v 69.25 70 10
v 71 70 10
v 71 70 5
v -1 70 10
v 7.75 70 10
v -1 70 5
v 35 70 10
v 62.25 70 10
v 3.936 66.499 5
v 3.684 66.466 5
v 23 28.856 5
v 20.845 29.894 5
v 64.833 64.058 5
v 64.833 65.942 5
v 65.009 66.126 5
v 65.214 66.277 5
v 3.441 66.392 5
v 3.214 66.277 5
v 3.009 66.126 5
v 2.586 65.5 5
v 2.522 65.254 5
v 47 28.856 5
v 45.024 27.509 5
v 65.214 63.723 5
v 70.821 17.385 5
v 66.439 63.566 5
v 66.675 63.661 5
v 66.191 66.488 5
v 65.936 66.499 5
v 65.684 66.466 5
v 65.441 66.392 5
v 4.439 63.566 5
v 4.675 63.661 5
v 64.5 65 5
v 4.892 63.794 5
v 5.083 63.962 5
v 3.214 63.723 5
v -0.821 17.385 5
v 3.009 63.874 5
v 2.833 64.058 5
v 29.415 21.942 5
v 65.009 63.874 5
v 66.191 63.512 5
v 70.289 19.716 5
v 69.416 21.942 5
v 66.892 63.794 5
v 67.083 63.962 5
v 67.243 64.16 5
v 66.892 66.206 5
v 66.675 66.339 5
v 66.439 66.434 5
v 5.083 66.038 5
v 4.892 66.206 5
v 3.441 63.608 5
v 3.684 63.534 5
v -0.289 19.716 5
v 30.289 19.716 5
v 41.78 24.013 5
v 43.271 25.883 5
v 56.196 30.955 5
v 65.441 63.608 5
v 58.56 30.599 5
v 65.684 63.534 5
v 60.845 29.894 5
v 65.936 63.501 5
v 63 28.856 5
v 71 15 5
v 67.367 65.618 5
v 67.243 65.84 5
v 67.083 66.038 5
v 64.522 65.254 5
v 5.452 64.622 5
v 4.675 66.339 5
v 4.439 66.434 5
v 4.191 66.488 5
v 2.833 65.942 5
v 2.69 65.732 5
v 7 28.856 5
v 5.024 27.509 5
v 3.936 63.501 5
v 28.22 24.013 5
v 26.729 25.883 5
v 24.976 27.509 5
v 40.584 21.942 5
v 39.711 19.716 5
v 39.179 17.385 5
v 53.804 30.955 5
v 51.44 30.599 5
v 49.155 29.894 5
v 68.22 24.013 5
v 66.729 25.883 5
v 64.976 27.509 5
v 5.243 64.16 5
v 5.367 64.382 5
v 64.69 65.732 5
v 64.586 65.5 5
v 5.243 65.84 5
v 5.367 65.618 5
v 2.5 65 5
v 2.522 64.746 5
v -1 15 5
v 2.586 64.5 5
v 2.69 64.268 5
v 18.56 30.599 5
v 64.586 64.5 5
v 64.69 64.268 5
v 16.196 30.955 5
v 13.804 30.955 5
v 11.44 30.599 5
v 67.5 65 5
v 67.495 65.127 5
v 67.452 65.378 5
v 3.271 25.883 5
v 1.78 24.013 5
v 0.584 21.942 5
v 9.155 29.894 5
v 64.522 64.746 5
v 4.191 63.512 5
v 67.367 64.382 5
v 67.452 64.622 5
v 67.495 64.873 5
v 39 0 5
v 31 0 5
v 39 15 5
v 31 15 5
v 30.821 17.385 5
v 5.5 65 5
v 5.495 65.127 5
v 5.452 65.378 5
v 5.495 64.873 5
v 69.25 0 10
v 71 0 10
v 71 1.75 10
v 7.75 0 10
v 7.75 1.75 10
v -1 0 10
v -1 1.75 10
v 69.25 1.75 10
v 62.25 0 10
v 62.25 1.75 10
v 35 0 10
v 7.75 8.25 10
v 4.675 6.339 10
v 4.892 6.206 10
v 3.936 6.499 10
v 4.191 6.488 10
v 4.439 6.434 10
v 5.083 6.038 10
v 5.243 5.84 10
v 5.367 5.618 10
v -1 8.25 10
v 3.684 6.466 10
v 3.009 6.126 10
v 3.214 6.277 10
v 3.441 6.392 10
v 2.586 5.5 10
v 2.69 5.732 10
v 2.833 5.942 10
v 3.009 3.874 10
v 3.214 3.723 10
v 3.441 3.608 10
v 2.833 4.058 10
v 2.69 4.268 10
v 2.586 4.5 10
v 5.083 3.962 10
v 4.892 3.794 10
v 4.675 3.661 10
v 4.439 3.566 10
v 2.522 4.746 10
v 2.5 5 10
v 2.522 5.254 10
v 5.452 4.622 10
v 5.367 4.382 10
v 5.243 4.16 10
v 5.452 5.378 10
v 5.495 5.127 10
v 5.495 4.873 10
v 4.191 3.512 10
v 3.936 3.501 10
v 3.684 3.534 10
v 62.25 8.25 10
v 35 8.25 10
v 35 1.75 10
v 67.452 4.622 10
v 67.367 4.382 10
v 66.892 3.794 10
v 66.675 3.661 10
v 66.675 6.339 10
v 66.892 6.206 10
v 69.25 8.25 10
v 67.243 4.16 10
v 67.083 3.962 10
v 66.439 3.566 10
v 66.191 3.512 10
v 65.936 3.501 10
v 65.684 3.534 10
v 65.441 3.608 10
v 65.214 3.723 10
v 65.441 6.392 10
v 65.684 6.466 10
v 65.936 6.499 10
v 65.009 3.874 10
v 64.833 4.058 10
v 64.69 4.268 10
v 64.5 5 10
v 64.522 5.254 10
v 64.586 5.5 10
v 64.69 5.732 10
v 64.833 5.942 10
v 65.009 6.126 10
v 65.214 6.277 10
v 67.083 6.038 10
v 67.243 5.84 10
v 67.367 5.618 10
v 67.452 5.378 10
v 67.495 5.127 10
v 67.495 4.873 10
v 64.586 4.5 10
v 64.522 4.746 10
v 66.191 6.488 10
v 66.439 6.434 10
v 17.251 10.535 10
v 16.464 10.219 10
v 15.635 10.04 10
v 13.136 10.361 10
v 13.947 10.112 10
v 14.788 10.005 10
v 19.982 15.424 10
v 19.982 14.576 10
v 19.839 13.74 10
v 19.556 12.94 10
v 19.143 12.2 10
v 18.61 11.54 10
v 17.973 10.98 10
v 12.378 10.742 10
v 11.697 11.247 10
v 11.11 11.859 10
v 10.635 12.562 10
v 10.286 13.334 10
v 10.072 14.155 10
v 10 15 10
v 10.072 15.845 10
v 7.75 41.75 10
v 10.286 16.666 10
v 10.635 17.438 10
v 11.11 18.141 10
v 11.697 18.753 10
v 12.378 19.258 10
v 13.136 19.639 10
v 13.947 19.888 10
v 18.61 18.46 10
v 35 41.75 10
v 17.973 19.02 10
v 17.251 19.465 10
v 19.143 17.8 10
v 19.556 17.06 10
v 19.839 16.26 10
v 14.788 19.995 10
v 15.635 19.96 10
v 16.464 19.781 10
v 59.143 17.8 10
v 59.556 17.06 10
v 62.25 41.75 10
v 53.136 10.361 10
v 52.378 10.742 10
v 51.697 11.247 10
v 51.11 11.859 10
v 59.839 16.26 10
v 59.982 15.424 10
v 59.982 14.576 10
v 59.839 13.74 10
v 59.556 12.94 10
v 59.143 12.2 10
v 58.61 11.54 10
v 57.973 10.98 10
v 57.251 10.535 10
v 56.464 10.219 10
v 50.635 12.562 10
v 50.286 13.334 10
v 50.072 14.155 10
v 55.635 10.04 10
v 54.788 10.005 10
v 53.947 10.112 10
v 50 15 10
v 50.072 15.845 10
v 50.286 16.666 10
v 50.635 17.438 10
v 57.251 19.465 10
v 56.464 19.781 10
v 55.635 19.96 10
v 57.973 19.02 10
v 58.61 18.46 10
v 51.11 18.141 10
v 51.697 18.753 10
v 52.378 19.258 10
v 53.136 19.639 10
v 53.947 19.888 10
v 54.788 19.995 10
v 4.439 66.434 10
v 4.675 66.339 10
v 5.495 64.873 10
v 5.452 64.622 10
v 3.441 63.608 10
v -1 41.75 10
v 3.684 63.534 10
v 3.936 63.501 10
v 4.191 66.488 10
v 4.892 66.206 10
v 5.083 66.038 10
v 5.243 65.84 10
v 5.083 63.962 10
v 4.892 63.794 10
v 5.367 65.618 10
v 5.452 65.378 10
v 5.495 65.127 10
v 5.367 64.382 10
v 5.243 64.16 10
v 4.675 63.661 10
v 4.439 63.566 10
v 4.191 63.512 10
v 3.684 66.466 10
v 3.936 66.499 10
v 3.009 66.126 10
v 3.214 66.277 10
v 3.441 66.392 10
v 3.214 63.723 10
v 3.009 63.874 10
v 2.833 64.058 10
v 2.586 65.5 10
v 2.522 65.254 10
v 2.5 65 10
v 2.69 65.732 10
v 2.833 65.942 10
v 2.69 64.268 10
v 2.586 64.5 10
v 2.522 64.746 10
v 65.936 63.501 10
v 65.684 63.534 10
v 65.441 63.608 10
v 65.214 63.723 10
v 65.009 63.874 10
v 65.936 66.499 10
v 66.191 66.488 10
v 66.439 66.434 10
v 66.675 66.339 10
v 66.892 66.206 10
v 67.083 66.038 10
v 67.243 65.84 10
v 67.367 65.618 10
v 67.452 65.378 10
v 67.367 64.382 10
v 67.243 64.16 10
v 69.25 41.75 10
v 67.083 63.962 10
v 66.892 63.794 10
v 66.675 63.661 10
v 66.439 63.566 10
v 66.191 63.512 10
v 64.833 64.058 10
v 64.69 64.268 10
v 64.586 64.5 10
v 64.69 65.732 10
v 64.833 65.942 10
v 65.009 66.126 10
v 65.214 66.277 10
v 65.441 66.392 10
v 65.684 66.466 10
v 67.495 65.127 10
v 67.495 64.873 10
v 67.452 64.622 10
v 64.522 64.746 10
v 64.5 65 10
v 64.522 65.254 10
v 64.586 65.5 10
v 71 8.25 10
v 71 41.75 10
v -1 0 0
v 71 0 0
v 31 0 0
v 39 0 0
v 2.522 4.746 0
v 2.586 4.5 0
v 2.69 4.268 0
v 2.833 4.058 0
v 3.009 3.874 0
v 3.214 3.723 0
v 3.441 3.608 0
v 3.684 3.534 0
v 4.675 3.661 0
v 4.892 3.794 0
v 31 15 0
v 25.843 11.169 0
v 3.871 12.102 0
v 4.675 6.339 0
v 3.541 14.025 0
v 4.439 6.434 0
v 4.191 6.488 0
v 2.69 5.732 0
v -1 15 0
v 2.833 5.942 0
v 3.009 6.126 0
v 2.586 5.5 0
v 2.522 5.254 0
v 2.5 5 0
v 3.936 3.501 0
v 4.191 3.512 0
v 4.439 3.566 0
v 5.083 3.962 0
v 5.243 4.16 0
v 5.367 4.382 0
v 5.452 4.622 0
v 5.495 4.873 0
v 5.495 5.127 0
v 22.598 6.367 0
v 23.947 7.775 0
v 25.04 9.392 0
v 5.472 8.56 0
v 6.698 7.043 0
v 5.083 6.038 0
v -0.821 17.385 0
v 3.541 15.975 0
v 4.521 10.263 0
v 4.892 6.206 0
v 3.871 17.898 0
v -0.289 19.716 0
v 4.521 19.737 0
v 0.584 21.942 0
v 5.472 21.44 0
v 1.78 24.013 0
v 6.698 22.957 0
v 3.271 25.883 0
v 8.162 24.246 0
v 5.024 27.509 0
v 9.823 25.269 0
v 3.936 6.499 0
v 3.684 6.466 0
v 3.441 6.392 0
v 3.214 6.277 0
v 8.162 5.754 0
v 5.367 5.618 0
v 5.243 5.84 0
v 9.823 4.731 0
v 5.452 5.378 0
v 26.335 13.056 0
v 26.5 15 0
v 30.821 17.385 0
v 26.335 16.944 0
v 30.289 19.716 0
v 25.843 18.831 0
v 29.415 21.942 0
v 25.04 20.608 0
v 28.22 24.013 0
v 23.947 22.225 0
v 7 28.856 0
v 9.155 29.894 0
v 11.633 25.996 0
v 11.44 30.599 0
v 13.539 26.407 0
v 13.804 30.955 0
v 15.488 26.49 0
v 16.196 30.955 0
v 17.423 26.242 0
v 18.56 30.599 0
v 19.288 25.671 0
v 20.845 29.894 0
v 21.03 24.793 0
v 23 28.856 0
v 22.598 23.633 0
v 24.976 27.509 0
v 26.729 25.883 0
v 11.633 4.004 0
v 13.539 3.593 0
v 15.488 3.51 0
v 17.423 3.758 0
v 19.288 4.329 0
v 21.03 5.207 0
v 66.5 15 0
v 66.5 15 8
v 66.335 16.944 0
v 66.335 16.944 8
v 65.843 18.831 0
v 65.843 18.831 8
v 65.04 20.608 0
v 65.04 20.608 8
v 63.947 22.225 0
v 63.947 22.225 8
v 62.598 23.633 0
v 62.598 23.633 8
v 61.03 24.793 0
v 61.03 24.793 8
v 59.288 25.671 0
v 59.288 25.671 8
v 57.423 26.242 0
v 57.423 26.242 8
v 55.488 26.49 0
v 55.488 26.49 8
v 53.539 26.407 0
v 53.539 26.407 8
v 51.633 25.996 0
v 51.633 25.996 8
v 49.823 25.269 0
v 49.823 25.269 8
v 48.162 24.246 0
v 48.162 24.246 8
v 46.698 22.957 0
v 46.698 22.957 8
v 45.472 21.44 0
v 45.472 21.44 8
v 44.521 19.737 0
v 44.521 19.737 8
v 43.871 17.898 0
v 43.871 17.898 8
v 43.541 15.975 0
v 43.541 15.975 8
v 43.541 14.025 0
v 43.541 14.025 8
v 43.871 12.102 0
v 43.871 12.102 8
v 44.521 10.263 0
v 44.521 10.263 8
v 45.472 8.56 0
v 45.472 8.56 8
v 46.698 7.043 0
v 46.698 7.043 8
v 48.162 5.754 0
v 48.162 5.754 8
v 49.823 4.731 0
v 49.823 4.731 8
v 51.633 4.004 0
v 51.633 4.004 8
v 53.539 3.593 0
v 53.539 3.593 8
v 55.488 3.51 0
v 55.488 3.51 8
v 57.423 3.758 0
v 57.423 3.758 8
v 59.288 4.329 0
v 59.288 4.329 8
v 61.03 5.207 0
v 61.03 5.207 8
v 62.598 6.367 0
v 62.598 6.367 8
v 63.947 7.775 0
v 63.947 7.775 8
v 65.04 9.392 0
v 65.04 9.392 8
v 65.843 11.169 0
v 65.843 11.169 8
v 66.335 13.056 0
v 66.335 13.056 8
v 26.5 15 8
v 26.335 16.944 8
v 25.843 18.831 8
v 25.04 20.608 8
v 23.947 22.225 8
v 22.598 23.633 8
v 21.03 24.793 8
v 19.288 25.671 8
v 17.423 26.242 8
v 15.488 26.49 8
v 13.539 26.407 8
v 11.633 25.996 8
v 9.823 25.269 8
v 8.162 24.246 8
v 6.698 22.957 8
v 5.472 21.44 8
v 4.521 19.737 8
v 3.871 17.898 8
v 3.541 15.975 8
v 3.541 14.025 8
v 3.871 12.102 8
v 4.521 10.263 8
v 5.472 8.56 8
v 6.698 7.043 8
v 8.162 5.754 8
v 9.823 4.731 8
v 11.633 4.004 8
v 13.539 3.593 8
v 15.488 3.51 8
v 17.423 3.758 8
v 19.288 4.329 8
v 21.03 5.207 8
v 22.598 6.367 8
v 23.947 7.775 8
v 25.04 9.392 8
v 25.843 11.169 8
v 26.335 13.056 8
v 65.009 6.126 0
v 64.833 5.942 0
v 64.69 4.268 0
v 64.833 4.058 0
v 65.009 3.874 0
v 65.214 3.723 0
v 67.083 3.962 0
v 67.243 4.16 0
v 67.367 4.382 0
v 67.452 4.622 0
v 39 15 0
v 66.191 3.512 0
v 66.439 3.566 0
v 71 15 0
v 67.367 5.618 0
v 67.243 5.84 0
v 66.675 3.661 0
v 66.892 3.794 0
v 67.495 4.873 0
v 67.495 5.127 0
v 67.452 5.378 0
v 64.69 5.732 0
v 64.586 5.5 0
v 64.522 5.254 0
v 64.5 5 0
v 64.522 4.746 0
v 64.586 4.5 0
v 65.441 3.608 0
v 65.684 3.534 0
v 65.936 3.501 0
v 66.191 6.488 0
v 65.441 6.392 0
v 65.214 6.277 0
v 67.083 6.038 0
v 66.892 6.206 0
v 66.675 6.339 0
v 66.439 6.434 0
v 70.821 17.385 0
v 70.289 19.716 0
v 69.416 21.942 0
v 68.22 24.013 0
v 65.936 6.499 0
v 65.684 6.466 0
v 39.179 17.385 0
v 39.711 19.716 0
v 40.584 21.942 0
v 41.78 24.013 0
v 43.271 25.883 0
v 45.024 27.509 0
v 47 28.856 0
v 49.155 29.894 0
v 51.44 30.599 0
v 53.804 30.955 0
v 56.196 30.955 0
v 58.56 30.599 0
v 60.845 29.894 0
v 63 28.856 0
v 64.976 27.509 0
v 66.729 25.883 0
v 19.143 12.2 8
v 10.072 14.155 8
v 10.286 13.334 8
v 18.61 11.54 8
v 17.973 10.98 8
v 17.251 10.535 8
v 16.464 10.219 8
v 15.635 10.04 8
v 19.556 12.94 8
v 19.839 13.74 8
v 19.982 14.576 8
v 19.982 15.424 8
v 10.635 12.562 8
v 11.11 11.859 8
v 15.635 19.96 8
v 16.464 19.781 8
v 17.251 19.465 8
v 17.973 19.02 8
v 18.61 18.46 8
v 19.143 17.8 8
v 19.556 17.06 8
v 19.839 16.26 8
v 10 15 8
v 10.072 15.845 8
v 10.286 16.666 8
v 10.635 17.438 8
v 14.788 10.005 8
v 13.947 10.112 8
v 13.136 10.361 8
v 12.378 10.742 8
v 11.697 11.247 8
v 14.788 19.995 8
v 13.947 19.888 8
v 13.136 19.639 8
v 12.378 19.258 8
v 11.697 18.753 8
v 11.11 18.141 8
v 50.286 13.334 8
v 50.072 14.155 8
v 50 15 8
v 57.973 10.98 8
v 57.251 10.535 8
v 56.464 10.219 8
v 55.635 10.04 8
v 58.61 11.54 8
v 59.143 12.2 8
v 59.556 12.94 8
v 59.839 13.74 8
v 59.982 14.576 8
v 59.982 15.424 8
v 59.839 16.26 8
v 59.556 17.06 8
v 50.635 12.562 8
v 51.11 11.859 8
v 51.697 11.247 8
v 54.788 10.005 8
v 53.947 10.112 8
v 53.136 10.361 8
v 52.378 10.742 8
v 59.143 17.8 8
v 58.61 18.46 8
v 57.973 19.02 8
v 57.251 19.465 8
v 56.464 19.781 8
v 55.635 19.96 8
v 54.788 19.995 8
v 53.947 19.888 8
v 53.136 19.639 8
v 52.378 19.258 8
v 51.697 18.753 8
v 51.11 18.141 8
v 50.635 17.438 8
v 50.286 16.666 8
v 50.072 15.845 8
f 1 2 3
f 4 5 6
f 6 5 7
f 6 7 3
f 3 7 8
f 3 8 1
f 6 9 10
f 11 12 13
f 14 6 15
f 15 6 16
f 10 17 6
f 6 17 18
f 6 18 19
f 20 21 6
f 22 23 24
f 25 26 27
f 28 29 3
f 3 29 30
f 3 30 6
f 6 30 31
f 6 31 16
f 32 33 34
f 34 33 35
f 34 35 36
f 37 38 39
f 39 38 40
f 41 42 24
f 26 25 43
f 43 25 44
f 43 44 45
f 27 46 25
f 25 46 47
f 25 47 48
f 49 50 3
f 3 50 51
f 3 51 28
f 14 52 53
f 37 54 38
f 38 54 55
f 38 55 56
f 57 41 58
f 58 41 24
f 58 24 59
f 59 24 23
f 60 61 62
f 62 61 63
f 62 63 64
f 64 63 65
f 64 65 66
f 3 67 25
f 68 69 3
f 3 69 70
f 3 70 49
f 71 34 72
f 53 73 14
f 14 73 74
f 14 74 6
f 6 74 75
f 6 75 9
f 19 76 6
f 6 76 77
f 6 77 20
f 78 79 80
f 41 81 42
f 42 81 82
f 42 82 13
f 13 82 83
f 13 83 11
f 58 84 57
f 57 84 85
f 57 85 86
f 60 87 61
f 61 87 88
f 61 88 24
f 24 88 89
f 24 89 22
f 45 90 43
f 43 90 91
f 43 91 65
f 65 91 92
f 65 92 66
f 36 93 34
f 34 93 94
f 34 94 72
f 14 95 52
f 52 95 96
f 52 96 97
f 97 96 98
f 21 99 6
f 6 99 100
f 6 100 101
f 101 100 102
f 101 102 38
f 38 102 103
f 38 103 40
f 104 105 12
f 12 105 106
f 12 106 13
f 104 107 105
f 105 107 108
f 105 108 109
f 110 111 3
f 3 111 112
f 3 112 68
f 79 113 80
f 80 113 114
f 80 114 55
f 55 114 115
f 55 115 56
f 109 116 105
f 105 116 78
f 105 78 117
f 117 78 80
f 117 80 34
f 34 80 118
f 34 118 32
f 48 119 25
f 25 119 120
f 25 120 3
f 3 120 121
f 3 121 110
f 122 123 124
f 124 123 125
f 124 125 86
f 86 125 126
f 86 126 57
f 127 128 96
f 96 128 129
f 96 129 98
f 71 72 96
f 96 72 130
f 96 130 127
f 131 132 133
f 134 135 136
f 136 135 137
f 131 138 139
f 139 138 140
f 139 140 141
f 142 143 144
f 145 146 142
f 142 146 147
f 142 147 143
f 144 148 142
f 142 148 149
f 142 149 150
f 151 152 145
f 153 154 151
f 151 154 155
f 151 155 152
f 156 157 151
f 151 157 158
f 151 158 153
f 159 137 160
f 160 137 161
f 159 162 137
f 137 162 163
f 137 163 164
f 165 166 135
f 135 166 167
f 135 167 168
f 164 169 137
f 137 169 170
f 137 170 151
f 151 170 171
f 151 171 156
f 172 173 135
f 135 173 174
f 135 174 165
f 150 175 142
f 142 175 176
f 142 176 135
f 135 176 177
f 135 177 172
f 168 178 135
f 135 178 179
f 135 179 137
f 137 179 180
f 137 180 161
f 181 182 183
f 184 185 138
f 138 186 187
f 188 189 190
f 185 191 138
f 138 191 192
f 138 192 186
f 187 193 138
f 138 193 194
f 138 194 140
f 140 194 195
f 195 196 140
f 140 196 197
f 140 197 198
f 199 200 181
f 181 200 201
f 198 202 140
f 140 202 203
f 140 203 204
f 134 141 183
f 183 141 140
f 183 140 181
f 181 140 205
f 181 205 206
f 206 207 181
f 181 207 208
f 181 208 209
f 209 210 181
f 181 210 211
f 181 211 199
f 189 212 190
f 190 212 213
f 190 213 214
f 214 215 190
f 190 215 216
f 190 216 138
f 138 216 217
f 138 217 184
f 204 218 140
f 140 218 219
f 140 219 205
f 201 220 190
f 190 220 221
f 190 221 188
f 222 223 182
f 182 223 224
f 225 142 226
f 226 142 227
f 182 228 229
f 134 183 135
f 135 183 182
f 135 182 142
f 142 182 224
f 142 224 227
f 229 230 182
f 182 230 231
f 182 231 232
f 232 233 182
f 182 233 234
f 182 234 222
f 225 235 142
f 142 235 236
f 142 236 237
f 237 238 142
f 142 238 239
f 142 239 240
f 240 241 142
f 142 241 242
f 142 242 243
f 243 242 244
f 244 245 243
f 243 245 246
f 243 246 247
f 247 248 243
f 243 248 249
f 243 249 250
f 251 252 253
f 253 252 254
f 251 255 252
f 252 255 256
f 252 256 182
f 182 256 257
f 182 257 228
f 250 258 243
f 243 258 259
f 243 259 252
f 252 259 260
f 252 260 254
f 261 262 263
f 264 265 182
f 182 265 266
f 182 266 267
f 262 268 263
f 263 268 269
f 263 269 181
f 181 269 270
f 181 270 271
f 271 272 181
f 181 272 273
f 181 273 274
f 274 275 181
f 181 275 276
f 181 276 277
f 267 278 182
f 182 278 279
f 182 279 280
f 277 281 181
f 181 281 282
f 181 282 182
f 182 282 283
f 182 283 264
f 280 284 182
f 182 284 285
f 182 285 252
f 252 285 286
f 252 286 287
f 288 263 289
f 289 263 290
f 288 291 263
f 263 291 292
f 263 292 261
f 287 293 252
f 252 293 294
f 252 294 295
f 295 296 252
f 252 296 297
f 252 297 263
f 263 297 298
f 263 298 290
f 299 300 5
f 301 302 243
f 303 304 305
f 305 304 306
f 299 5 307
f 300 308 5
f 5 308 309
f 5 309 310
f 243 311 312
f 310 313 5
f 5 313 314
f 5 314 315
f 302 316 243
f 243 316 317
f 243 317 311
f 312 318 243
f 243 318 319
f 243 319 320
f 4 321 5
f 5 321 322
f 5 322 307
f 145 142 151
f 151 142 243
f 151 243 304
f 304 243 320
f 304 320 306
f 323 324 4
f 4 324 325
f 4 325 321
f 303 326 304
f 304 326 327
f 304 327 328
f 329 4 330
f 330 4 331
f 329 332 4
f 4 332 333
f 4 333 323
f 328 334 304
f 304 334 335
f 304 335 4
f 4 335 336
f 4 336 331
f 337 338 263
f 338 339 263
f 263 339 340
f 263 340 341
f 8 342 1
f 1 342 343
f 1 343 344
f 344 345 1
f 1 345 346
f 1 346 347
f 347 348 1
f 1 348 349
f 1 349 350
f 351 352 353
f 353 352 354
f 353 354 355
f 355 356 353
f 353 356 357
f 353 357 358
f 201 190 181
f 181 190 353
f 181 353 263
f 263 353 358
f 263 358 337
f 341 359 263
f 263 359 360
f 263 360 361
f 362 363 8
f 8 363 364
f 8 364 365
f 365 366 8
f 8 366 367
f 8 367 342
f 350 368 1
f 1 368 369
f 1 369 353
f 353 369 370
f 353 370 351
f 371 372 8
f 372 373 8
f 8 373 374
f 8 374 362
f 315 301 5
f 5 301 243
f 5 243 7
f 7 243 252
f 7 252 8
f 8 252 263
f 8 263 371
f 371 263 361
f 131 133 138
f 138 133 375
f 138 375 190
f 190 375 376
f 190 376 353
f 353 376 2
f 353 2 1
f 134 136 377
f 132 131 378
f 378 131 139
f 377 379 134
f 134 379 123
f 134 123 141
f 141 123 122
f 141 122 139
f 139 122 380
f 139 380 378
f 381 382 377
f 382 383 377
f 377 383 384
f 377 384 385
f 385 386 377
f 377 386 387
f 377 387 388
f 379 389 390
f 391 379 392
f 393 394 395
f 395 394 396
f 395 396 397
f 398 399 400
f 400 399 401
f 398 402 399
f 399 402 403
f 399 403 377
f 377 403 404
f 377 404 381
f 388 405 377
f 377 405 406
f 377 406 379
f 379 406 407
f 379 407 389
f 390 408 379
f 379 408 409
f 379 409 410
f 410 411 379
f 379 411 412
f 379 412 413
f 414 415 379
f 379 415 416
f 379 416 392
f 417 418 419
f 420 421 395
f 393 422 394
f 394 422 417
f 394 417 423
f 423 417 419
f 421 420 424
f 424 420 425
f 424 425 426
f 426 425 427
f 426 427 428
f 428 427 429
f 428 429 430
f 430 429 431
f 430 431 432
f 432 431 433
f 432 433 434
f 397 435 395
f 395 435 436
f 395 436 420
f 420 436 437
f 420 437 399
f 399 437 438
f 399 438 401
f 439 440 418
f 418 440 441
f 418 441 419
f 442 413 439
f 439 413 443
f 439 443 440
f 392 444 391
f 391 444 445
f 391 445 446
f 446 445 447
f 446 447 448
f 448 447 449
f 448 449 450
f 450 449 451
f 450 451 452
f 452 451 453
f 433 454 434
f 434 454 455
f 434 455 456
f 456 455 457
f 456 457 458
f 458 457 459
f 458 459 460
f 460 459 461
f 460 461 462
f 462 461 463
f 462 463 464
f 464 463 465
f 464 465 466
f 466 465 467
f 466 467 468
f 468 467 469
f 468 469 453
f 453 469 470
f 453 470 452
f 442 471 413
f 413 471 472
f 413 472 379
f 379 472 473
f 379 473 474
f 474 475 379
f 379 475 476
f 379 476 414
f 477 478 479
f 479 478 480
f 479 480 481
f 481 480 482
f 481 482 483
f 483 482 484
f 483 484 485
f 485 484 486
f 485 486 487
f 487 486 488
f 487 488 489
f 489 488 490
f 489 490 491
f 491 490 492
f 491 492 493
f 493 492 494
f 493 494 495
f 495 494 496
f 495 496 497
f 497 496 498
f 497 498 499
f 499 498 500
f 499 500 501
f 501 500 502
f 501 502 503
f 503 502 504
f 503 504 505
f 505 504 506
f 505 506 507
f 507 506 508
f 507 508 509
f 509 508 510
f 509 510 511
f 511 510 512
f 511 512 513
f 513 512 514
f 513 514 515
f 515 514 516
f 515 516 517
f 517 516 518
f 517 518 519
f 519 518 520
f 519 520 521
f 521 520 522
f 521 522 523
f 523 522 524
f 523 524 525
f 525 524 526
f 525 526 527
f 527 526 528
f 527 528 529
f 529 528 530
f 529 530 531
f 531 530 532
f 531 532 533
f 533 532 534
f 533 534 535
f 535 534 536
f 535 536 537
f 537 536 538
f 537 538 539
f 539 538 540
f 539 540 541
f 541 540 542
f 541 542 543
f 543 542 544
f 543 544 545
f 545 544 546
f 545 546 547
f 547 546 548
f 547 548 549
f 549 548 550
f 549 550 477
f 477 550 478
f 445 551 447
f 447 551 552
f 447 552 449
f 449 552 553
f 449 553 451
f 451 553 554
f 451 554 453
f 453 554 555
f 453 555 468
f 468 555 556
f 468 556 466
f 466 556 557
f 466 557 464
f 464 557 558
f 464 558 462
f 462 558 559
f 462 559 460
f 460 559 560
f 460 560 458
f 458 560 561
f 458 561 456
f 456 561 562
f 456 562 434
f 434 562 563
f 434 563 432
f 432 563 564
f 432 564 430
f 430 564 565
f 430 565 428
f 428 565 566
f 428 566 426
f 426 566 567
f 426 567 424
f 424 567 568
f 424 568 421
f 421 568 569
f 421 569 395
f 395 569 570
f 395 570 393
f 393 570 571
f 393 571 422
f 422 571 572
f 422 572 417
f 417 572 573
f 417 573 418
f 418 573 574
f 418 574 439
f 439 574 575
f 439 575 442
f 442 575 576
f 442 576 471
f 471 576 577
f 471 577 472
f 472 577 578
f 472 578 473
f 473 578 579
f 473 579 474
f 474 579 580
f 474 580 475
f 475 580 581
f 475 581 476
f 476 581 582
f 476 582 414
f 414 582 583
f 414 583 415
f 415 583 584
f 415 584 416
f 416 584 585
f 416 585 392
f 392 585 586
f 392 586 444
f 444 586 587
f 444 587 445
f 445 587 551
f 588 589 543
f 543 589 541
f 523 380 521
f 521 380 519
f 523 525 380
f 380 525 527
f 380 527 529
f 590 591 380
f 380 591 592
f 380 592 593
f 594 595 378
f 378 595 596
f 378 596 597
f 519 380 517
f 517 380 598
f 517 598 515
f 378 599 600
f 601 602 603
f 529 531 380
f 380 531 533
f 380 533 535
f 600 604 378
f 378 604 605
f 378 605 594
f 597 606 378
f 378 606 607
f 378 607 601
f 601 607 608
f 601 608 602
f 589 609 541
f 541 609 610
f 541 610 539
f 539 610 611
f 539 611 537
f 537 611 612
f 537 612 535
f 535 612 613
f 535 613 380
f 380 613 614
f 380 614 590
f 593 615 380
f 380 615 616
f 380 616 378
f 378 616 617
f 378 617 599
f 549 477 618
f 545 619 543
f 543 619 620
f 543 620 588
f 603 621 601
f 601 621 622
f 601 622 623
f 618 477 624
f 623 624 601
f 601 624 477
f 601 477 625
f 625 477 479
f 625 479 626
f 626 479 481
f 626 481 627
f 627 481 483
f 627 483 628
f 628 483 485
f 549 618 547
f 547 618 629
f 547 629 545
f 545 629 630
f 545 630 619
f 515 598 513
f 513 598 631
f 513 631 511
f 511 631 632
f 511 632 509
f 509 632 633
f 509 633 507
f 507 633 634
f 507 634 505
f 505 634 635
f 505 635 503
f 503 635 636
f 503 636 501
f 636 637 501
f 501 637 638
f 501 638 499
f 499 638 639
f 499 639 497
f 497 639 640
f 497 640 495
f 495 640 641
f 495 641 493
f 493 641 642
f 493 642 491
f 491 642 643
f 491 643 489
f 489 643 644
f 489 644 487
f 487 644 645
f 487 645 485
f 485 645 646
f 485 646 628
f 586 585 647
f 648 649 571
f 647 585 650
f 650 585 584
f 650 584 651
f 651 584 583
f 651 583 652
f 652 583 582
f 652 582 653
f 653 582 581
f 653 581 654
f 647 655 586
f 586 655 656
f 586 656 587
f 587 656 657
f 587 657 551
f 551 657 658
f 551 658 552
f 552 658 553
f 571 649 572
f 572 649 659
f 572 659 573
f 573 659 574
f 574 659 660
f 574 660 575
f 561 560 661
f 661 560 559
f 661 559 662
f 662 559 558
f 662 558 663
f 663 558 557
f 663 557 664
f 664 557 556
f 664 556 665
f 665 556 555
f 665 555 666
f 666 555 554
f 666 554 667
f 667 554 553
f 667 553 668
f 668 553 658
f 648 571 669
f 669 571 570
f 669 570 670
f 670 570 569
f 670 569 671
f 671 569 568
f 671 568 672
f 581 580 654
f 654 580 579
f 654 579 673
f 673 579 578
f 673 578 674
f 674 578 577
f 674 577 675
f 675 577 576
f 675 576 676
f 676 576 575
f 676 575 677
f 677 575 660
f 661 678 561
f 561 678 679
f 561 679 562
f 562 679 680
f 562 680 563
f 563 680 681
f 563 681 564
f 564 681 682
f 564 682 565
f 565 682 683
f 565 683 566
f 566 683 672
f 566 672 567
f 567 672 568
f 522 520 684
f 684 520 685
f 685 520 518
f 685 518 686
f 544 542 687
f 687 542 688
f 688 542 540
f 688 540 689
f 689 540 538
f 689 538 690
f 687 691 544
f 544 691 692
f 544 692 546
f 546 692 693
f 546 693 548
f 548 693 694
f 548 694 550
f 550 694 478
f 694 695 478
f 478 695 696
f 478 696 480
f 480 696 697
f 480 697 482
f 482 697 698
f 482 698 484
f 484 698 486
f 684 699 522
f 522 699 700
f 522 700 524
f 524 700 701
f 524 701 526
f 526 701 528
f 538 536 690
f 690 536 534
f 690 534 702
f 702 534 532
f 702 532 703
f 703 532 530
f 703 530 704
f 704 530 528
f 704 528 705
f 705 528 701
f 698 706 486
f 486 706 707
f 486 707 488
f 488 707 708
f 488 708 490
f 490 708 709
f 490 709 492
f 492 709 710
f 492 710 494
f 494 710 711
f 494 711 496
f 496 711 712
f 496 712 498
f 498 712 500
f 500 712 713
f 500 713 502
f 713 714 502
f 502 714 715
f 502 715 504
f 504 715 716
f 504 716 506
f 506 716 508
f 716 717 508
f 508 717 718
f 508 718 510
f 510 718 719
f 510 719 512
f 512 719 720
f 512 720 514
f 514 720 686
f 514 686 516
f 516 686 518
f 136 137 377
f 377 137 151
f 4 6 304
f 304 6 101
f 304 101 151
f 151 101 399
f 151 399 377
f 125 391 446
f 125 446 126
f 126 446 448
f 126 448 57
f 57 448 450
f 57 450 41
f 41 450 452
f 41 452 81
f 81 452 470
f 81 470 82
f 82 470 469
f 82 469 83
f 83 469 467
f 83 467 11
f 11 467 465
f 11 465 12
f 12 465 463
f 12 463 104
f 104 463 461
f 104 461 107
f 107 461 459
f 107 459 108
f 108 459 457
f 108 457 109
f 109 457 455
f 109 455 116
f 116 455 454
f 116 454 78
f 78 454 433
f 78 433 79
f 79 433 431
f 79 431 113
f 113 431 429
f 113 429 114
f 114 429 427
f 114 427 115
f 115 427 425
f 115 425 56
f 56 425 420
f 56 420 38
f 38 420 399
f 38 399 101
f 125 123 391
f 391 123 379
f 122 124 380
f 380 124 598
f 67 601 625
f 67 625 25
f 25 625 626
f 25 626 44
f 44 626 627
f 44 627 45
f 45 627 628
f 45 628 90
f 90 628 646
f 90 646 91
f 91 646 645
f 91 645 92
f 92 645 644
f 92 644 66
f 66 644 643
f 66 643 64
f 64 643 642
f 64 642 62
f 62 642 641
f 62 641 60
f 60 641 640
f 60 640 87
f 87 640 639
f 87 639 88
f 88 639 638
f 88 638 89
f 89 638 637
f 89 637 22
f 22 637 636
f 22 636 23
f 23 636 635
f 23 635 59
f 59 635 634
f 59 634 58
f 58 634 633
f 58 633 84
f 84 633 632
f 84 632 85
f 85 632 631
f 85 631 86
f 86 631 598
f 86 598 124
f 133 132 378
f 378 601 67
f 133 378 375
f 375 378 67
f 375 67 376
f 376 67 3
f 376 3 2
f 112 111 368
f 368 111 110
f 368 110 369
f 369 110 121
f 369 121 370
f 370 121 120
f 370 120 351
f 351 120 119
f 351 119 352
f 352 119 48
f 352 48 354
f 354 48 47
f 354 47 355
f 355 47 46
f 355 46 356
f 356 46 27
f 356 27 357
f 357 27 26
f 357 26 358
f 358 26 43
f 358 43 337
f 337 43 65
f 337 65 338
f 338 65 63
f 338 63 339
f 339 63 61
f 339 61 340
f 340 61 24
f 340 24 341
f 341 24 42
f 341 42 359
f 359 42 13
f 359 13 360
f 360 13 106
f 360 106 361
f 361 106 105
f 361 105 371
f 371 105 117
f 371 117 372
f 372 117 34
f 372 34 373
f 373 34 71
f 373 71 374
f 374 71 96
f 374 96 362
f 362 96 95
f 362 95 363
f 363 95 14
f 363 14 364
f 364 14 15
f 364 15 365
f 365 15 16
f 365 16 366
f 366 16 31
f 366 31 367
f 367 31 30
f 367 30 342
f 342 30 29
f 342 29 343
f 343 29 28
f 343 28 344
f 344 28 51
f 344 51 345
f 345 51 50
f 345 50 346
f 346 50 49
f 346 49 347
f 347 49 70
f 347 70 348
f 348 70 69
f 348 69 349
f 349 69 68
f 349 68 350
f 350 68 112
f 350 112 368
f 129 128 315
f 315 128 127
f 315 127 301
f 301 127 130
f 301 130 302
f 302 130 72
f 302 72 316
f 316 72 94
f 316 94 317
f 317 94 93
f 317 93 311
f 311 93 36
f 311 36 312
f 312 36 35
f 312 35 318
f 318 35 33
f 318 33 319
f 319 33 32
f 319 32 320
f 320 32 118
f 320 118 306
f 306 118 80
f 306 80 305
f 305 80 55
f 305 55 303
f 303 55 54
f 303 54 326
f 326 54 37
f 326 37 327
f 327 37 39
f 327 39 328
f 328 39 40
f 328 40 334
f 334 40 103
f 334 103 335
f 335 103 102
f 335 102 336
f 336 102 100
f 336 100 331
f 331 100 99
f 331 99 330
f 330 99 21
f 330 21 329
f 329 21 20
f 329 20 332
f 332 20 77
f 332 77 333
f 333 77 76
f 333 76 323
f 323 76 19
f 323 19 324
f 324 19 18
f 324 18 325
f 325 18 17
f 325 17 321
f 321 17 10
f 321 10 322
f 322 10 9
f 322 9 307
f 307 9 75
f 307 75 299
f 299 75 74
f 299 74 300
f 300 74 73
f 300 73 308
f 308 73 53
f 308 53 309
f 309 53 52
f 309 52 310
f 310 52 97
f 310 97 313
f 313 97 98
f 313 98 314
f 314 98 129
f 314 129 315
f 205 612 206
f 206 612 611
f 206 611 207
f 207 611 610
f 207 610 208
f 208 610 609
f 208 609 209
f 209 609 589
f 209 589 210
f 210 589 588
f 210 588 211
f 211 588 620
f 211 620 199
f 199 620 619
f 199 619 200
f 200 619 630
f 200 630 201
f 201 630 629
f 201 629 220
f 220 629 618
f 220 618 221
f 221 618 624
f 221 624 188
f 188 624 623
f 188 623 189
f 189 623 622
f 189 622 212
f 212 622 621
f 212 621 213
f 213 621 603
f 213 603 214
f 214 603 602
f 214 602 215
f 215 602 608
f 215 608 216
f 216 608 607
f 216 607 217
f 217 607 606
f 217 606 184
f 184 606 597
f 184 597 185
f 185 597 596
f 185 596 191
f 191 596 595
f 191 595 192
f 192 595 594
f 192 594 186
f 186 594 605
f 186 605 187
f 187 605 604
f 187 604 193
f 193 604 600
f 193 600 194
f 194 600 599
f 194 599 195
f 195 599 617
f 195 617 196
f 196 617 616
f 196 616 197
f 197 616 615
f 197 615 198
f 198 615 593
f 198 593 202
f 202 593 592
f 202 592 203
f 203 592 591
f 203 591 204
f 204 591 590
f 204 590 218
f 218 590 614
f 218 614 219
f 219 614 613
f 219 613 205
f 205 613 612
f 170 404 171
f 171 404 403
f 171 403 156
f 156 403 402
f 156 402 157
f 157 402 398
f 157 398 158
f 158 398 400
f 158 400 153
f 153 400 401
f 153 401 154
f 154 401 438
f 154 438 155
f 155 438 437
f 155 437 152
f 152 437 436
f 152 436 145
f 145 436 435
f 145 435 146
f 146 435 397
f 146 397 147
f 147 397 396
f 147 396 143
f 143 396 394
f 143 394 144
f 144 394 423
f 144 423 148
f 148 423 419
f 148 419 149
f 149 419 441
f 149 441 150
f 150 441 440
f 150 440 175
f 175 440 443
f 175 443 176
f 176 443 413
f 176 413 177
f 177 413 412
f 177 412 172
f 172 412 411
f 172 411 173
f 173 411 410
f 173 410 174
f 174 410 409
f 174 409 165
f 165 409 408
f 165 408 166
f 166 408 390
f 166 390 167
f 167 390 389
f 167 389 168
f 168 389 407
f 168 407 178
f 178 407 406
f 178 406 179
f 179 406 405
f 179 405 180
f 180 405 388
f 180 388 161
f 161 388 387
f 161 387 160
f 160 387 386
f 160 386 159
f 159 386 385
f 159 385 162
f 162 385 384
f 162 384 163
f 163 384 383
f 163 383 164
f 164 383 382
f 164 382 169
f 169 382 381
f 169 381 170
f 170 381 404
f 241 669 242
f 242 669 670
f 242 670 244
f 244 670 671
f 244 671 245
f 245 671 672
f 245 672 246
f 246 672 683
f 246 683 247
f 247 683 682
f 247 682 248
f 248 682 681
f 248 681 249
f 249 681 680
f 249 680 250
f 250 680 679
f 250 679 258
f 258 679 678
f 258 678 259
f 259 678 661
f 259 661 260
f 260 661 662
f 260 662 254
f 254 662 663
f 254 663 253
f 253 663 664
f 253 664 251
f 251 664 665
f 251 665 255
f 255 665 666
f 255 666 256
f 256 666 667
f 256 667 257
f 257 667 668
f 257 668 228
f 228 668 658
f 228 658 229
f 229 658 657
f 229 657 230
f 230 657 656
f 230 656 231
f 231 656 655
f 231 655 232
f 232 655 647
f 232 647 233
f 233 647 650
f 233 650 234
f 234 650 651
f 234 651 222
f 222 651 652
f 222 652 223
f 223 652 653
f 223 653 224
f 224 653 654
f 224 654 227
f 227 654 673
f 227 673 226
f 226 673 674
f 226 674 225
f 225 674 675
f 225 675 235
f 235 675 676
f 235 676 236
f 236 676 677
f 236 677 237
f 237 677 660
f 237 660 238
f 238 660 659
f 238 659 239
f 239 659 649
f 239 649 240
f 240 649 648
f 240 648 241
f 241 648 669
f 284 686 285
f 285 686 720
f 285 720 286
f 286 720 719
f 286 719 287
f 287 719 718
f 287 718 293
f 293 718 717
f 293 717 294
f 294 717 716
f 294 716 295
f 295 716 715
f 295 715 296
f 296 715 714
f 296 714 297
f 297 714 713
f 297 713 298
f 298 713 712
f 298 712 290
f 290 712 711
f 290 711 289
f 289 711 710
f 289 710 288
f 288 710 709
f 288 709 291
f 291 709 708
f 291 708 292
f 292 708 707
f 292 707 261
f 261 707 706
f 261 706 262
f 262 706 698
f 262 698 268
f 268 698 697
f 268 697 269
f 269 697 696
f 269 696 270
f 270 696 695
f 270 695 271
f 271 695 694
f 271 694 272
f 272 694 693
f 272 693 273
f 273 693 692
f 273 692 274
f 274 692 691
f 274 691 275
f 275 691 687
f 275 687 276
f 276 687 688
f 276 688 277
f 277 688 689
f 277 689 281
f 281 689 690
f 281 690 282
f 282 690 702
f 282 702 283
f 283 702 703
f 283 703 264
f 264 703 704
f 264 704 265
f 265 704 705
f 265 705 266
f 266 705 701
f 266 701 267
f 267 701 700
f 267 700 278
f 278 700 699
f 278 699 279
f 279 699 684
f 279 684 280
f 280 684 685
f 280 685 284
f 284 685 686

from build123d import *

# Parameters (mm, degrees)
SKETCH1_W               = 70
SKETCH1_H               = 70
BOSS_EXTRUDE1_DEPTH     = 10
SKETCH2_R               = 12
SKETCH2_R_2             = 2
SKETCH2_R_3             = 11.5
CUT_EXTRUDE1_DEPTH      = 10
SKETCH3_W               = 10
SKETCH3_H               = 70
BOSS_EXTRUDE2_DEPTH     = 15
SKETCH4_W               = 10
SKETCH4_H               = 70
BOSS_EXTRUDE3_DEPTH     = 15
SKETCH5_R               = 11.5
SKETCH5_R_2             = 4
BOSS_EXTRUDE4_DEPTH     = 2
SKETCH6_R               = 1.5
SKETCH6_R_2             = 1.648708122
CUT_EXTRUDE3_DEPTH      = 10
BOSS_EXTRUDE5_START     = -10
SKETCH7_R               = 11.986708095
SKETCH7_R_2             = 2
BOSS_EXTRUDE5_DEPTH     = 10
SKETCH8_R               = 12
CUT_EXTRUDE4_DEPTH      = 10
SKETCH9_R               = 2
CUT_EXTRUDE5_DEPTH      = 10
CUT_EXTRUDE7_DEPTH      = 5
SKETCH15_W              = 14
SKETCH15_H              = 70
CUT_EXTRUDE8_DEPTH      = 5
CUT_EXTRUDE9_DEPTH      = 19
CUT_EXTRUDE9_DEPTH_BACK = 48
SKETCH16_R              = 1.5
SKETCH17_R              = 5
CUT_EXTRUDE10_DEPTH     = 19
SKETCH18_W              = 44.558304453
SKETCH18_H              = 39
BOSS_EXTRUDE6_DEPTH     = 5


with BuildPart() as part:
    # Sketch1 → Boss-Extrude1 (new body)
    with BuildSketch(Plane.XY):
        with Locations((35, 35)):
            Rectangle(SKETCH1_W, SKETCH1_H)
    extrude(amount=BOSS_EXTRUDE1_DEPTH)

    # Sketch2 → Cut-Extrude1 (cut)
    with BuildSketch(Plane.XY.offset(10)):
        with Locations((35, 49)):
            Circle(SKETCH2_R)
        with Locations((19.5, 65)):
            Circle(SKETCH2_R_2)
        with Locations((50.5, 65)):
            Circle(SKETCH2_R_2)
        with Locations((19.5, 34)):
            Circle(SKETCH2_R_2)
        with Locations((50.5, 34)):
            Circle(SKETCH2_R_2)
        with Locations((15, 15)):
            Circle(SKETCH2_R_3)
        with Locations((55, 15)):
            Circle(SKETCH2_R_3)
    extrude(amount=-CUT_EXTRUDE1_DEPTH, mode=Mode.SUBTRACT)

    # Sketch3 → Boss-Extrude2 (add)
    with BuildSketch(Plane.ZY):
        with Locations((5, 35)):
            Rectangle(SKETCH3_W, SKETCH3_H)
    extrude(amount=BOSS_EXTRUDE2_DEPTH)

    # Sketch4 → Boss-Extrude3 (add)
    with BuildSketch(Plane(origin=(70, 0, 0), x_dir=(0, 0, -1), z_dir=(1, 0, 0))):
        with Locations((-5, 35)):
            Rectangle(SKETCH4_W, SKETCH4_H)
    extrude(amount=BOSS_EXTRUDE3_DEPTH)

    # Sketch5 → Boss-Extrude4 (add)
    # profile 1 of 2: a face of its own
    with BuildSketch(Plane.XY.offset(10)):
        with Locations((15, 15)):
            Circle(SKETCH5_R)
        with Locations((15, 15)):
            Circle(SKETCH5_R_2, mode=Mode.SUBTRACT)
    # profile 2 of 2: a face of its own
    with BuildSketch(Plane.XY.offset(10)):
        with Locations((55, 15)):
            Circle(SKETCH5_R)
        with Locations((55, 15)):
            Circle(SKETCH5_R_2, mode=Mode.SUBTRACT)
    extrude(amount=-BOSS_EXTRUDE4_DEPTH)

    # Sketch6 → Cut-Extrude3 (cut)
    with BuildSketch(Plane(origin=(0, 0, 0), x_dir=(-1, 0, 0), z_dir=(0, 0, -1))):
        with Locations((-80, 65)):
            Circle(SKETCH6_R)
        with Locations((-80, 5)):
            Circle(SKETCH6_R)
        with Locations((10, 65)):
            Circle(SKETCH6_R_2)
        with Locations((10, 5)):
            Circle(SKETCH6_R)
    extrude(amount=-CUT_EXTRUDE3_DEPTH, mode=Mode.SUBTRACT)

    # Sketch7 → Boss-Extrude5 (add)
    with BuildSketch(Plane(origin=(0, 0, 0), x_dir=(-1, 0, 0), z_dir=(0, 0, -1)).offset(BOSS_EXTRUDE5_START)):
        with Locations((-35, 49)):
            Circle(SKETCH7_R)
        with Locations((-50.5, 65)):
            Circle(SKETCH7_R_2)
        with Locations((-19.5, 65)):
            Circle(SKETCH7_R_2)
        with Locations((-19.5, 34)):
            Circle(SKETCH7_R_2)
        with Locations((-50.5, 34)):
            Circle(SKETCH7_R_2)
    extrude(amount=BOSS_EXTRUDE5_DEPTH)


with BuildPart() as boss_extrude5_piece_1:
    # of the separate pieces the step leaves, piece 1, a body of its own (boss_extrude5_pieces)
    add(part.part.solids().sort_by_distance((-15, 0, 0))[0])


with BuildPart() as boss_extrude5_piece_2:
    # of the separate pieces the step leaves, piece 2, a body of its own (boss_extrude5_pieces)
    add(part.part.solids().sort_by_distance((23.013291905, 49, 10))[0])


with BuildPart() as cut_extrude4_tool:
    # Sketch8 → Cut-Extrude4 (new body)
    with BuildSketch(Plane(origin=(0, 0, 0), x_dir=(-1, 0, 0), z_dir=(0, 0, -1))):
        with Locations((-33.928692494, 49)):
            Circle(SKETCH8_R)
    extrude(amount=-CUT_EXTRUDE4_DEPTH)


with BuildPart() as boss_extrude5_piece_1_1:
    add(boss_extrude5_piece_1.part)

    # Cut-Extrude4: cut by cut_extrude4_tool
    add(cut_extrude4_tool.part, mode=Mode.SUBTRACT)

    # Sketch9 → Cut-Extrude5 (cut)
    with BuildSketch(Plane(origin=(0, 0, 0), x_dir=(-1, 0, 0), z_dir=(0, 0, -1))):
        with Locations((-49.428692494, 64.5)):
            Circle(SKETCH9_R)
        with Locations((-49.428692494, 33.5)):
            Circle(SKETCH9_R)
        with Locations((-18.428692494, 33.5)):
            Circle(SKETCH9_R)
        with Locations((-18.428692494, 64.5)):
            Circle(SKETCH9_R)
    extrude(amount=-CUT_EXTRUDE5_DEPTH, mode=Mode.SUBTRACT)


with BuildPart() as boss_extrude5_piece_2_1:
    add(boss_extrude5_piece_2.part)

    # Cut-Extrude4: cut by cut_extrude4_tool
    add(cut_extrude4_tool.part, mode=Mode.SUBTRACT)


with BuildPart() as cut_extrude7_tool:
    # Sketch14 → Cut-Extrude7 (new body)
    with BuildSketch(Plane(origin=(0, 0, 0), x_dir=(-1, 0, 0), z_dir=(0, 0, -1))):
        with BuildLine():
            Line((-85, 0), (-85, 70))
            Line((-85, 70), (15, 70))
            Line((15, 70), (15, 0))
            Line((15, 0), (1, 0))
            Line((1, 0), (1, 15))
            ThreePointArc((1, 15), (-15, 31), (-31, 15))
            Line((-31, 15), (-31, 0))
            Line((-31, 0), (-39, 0))
            Line((-39, 0), (-39, 15))
            ThreePointArc((-39, 15), (-55, 31), (-71, 15))
            Line((-71, 15), (-71, 0))
            Line((-71, 0), (-85, 0))
        make_face()
    extrude(amount=-CUT_EXTRUDE7_DEPTH)


with BuildPart() as boss_extrude5_piece_1_2:
    add(boss_extrude5_piece_1_1.part)

    # Cut-Extrude7: cut by cut_extrude7_tool
    add(cut_extrude7_tool.part, mode=Mode.SUBTRACT)

    # Sketch15 → Cut-Extrude8 (cut)
    with BuildSketch(Plane(origin=(0, 0, 5), x_dir=(-1, 0, 0), z_dir=(0, 0, -1))):
        with Locations((-78, 35)):
            Rectangle(SKETCH15_W, SKETCH15_H)
        with Locations((8, 35)):
            Rectangle(SKETCH15_W, SKETCH15_H)
    extrude(amount=-CUT_EXTRUDE8_DEPTH, mode=Mode.SUBTRACT)

    # Sketch16 → Cut-Extrude9 (cut, two sides: drawn at the far end of the back side and taken through both)
    with BuildSketch(Plane(origin=(0, 0, 5), x_dir=(-1, 0, 0), z_dir=(0, 0, -1)).offset(-CUT_EXTRUDE9_DEPTH_BACK)):
        with Locations((-66, 65)):
            Circle(SKETCH16_R)
        with Locations((-66, 5)):
            Circle(SKETCH16_R)
        with Locations((-4, 5)):
            Circle(SKETCH16_R)
        with Locations((-4, 65)):
            Circle(SKETCH16_R)
    extrude(amount=CUT_EXTRUDE9_DEPTH + CUT_EXTRUDE9_DEPTH_BACK, mode=Mode.SUBTRACT)

    # Sketch17 → Cut-Extrude10 (cut)
    with BuildSketch(Plane(origin=(0, 0, 8), x_dir=(-1, 0, 0), z_dir=(0, 0, -1))):
        with Locations((-15, 15)):
            Circle(SKETCH17_R)
        with Locations((-55, 15)):
            Circle(SKETCH17_R)
    extrude(amount=-CUT_EXTRUDE10_DEPTH, mode=Mode.SUBTRACT)



with BuildPart() as boss_extrude5_piece_2_2:
    add(boss_extrude5_piece_2_1.part)

    # Cut-Extrude7: cut by cut_extrude7_tool
    add(cut_extrude7_tool.part, mode=Mode.SUBTRACT)


with BuildPart() as boss_extrude5_piece_1_3:
    add(boss_extrude5_piece_1_2.part)

    add(boss_extrude5_piece_2_2.part)  # Boss-Extrude6 merges Boss-Extrude5 piece 2
    # Sketch18 → Boss-Extrude6 (add)
    with BuildSketch(Plane(origin=(0, 0, 5), x_dir=(-1, 0, 0), z_dir=(0, 0, -1))):
        with Locations((-37.279152227, 50.5)):
            Rectangle(SKETCH18_W, SKETCH18_H)
    extrude(amount=-BOSS_EXTRUDE6_DEPTH)


solid = boss_extrude5_piece_1_3.part
